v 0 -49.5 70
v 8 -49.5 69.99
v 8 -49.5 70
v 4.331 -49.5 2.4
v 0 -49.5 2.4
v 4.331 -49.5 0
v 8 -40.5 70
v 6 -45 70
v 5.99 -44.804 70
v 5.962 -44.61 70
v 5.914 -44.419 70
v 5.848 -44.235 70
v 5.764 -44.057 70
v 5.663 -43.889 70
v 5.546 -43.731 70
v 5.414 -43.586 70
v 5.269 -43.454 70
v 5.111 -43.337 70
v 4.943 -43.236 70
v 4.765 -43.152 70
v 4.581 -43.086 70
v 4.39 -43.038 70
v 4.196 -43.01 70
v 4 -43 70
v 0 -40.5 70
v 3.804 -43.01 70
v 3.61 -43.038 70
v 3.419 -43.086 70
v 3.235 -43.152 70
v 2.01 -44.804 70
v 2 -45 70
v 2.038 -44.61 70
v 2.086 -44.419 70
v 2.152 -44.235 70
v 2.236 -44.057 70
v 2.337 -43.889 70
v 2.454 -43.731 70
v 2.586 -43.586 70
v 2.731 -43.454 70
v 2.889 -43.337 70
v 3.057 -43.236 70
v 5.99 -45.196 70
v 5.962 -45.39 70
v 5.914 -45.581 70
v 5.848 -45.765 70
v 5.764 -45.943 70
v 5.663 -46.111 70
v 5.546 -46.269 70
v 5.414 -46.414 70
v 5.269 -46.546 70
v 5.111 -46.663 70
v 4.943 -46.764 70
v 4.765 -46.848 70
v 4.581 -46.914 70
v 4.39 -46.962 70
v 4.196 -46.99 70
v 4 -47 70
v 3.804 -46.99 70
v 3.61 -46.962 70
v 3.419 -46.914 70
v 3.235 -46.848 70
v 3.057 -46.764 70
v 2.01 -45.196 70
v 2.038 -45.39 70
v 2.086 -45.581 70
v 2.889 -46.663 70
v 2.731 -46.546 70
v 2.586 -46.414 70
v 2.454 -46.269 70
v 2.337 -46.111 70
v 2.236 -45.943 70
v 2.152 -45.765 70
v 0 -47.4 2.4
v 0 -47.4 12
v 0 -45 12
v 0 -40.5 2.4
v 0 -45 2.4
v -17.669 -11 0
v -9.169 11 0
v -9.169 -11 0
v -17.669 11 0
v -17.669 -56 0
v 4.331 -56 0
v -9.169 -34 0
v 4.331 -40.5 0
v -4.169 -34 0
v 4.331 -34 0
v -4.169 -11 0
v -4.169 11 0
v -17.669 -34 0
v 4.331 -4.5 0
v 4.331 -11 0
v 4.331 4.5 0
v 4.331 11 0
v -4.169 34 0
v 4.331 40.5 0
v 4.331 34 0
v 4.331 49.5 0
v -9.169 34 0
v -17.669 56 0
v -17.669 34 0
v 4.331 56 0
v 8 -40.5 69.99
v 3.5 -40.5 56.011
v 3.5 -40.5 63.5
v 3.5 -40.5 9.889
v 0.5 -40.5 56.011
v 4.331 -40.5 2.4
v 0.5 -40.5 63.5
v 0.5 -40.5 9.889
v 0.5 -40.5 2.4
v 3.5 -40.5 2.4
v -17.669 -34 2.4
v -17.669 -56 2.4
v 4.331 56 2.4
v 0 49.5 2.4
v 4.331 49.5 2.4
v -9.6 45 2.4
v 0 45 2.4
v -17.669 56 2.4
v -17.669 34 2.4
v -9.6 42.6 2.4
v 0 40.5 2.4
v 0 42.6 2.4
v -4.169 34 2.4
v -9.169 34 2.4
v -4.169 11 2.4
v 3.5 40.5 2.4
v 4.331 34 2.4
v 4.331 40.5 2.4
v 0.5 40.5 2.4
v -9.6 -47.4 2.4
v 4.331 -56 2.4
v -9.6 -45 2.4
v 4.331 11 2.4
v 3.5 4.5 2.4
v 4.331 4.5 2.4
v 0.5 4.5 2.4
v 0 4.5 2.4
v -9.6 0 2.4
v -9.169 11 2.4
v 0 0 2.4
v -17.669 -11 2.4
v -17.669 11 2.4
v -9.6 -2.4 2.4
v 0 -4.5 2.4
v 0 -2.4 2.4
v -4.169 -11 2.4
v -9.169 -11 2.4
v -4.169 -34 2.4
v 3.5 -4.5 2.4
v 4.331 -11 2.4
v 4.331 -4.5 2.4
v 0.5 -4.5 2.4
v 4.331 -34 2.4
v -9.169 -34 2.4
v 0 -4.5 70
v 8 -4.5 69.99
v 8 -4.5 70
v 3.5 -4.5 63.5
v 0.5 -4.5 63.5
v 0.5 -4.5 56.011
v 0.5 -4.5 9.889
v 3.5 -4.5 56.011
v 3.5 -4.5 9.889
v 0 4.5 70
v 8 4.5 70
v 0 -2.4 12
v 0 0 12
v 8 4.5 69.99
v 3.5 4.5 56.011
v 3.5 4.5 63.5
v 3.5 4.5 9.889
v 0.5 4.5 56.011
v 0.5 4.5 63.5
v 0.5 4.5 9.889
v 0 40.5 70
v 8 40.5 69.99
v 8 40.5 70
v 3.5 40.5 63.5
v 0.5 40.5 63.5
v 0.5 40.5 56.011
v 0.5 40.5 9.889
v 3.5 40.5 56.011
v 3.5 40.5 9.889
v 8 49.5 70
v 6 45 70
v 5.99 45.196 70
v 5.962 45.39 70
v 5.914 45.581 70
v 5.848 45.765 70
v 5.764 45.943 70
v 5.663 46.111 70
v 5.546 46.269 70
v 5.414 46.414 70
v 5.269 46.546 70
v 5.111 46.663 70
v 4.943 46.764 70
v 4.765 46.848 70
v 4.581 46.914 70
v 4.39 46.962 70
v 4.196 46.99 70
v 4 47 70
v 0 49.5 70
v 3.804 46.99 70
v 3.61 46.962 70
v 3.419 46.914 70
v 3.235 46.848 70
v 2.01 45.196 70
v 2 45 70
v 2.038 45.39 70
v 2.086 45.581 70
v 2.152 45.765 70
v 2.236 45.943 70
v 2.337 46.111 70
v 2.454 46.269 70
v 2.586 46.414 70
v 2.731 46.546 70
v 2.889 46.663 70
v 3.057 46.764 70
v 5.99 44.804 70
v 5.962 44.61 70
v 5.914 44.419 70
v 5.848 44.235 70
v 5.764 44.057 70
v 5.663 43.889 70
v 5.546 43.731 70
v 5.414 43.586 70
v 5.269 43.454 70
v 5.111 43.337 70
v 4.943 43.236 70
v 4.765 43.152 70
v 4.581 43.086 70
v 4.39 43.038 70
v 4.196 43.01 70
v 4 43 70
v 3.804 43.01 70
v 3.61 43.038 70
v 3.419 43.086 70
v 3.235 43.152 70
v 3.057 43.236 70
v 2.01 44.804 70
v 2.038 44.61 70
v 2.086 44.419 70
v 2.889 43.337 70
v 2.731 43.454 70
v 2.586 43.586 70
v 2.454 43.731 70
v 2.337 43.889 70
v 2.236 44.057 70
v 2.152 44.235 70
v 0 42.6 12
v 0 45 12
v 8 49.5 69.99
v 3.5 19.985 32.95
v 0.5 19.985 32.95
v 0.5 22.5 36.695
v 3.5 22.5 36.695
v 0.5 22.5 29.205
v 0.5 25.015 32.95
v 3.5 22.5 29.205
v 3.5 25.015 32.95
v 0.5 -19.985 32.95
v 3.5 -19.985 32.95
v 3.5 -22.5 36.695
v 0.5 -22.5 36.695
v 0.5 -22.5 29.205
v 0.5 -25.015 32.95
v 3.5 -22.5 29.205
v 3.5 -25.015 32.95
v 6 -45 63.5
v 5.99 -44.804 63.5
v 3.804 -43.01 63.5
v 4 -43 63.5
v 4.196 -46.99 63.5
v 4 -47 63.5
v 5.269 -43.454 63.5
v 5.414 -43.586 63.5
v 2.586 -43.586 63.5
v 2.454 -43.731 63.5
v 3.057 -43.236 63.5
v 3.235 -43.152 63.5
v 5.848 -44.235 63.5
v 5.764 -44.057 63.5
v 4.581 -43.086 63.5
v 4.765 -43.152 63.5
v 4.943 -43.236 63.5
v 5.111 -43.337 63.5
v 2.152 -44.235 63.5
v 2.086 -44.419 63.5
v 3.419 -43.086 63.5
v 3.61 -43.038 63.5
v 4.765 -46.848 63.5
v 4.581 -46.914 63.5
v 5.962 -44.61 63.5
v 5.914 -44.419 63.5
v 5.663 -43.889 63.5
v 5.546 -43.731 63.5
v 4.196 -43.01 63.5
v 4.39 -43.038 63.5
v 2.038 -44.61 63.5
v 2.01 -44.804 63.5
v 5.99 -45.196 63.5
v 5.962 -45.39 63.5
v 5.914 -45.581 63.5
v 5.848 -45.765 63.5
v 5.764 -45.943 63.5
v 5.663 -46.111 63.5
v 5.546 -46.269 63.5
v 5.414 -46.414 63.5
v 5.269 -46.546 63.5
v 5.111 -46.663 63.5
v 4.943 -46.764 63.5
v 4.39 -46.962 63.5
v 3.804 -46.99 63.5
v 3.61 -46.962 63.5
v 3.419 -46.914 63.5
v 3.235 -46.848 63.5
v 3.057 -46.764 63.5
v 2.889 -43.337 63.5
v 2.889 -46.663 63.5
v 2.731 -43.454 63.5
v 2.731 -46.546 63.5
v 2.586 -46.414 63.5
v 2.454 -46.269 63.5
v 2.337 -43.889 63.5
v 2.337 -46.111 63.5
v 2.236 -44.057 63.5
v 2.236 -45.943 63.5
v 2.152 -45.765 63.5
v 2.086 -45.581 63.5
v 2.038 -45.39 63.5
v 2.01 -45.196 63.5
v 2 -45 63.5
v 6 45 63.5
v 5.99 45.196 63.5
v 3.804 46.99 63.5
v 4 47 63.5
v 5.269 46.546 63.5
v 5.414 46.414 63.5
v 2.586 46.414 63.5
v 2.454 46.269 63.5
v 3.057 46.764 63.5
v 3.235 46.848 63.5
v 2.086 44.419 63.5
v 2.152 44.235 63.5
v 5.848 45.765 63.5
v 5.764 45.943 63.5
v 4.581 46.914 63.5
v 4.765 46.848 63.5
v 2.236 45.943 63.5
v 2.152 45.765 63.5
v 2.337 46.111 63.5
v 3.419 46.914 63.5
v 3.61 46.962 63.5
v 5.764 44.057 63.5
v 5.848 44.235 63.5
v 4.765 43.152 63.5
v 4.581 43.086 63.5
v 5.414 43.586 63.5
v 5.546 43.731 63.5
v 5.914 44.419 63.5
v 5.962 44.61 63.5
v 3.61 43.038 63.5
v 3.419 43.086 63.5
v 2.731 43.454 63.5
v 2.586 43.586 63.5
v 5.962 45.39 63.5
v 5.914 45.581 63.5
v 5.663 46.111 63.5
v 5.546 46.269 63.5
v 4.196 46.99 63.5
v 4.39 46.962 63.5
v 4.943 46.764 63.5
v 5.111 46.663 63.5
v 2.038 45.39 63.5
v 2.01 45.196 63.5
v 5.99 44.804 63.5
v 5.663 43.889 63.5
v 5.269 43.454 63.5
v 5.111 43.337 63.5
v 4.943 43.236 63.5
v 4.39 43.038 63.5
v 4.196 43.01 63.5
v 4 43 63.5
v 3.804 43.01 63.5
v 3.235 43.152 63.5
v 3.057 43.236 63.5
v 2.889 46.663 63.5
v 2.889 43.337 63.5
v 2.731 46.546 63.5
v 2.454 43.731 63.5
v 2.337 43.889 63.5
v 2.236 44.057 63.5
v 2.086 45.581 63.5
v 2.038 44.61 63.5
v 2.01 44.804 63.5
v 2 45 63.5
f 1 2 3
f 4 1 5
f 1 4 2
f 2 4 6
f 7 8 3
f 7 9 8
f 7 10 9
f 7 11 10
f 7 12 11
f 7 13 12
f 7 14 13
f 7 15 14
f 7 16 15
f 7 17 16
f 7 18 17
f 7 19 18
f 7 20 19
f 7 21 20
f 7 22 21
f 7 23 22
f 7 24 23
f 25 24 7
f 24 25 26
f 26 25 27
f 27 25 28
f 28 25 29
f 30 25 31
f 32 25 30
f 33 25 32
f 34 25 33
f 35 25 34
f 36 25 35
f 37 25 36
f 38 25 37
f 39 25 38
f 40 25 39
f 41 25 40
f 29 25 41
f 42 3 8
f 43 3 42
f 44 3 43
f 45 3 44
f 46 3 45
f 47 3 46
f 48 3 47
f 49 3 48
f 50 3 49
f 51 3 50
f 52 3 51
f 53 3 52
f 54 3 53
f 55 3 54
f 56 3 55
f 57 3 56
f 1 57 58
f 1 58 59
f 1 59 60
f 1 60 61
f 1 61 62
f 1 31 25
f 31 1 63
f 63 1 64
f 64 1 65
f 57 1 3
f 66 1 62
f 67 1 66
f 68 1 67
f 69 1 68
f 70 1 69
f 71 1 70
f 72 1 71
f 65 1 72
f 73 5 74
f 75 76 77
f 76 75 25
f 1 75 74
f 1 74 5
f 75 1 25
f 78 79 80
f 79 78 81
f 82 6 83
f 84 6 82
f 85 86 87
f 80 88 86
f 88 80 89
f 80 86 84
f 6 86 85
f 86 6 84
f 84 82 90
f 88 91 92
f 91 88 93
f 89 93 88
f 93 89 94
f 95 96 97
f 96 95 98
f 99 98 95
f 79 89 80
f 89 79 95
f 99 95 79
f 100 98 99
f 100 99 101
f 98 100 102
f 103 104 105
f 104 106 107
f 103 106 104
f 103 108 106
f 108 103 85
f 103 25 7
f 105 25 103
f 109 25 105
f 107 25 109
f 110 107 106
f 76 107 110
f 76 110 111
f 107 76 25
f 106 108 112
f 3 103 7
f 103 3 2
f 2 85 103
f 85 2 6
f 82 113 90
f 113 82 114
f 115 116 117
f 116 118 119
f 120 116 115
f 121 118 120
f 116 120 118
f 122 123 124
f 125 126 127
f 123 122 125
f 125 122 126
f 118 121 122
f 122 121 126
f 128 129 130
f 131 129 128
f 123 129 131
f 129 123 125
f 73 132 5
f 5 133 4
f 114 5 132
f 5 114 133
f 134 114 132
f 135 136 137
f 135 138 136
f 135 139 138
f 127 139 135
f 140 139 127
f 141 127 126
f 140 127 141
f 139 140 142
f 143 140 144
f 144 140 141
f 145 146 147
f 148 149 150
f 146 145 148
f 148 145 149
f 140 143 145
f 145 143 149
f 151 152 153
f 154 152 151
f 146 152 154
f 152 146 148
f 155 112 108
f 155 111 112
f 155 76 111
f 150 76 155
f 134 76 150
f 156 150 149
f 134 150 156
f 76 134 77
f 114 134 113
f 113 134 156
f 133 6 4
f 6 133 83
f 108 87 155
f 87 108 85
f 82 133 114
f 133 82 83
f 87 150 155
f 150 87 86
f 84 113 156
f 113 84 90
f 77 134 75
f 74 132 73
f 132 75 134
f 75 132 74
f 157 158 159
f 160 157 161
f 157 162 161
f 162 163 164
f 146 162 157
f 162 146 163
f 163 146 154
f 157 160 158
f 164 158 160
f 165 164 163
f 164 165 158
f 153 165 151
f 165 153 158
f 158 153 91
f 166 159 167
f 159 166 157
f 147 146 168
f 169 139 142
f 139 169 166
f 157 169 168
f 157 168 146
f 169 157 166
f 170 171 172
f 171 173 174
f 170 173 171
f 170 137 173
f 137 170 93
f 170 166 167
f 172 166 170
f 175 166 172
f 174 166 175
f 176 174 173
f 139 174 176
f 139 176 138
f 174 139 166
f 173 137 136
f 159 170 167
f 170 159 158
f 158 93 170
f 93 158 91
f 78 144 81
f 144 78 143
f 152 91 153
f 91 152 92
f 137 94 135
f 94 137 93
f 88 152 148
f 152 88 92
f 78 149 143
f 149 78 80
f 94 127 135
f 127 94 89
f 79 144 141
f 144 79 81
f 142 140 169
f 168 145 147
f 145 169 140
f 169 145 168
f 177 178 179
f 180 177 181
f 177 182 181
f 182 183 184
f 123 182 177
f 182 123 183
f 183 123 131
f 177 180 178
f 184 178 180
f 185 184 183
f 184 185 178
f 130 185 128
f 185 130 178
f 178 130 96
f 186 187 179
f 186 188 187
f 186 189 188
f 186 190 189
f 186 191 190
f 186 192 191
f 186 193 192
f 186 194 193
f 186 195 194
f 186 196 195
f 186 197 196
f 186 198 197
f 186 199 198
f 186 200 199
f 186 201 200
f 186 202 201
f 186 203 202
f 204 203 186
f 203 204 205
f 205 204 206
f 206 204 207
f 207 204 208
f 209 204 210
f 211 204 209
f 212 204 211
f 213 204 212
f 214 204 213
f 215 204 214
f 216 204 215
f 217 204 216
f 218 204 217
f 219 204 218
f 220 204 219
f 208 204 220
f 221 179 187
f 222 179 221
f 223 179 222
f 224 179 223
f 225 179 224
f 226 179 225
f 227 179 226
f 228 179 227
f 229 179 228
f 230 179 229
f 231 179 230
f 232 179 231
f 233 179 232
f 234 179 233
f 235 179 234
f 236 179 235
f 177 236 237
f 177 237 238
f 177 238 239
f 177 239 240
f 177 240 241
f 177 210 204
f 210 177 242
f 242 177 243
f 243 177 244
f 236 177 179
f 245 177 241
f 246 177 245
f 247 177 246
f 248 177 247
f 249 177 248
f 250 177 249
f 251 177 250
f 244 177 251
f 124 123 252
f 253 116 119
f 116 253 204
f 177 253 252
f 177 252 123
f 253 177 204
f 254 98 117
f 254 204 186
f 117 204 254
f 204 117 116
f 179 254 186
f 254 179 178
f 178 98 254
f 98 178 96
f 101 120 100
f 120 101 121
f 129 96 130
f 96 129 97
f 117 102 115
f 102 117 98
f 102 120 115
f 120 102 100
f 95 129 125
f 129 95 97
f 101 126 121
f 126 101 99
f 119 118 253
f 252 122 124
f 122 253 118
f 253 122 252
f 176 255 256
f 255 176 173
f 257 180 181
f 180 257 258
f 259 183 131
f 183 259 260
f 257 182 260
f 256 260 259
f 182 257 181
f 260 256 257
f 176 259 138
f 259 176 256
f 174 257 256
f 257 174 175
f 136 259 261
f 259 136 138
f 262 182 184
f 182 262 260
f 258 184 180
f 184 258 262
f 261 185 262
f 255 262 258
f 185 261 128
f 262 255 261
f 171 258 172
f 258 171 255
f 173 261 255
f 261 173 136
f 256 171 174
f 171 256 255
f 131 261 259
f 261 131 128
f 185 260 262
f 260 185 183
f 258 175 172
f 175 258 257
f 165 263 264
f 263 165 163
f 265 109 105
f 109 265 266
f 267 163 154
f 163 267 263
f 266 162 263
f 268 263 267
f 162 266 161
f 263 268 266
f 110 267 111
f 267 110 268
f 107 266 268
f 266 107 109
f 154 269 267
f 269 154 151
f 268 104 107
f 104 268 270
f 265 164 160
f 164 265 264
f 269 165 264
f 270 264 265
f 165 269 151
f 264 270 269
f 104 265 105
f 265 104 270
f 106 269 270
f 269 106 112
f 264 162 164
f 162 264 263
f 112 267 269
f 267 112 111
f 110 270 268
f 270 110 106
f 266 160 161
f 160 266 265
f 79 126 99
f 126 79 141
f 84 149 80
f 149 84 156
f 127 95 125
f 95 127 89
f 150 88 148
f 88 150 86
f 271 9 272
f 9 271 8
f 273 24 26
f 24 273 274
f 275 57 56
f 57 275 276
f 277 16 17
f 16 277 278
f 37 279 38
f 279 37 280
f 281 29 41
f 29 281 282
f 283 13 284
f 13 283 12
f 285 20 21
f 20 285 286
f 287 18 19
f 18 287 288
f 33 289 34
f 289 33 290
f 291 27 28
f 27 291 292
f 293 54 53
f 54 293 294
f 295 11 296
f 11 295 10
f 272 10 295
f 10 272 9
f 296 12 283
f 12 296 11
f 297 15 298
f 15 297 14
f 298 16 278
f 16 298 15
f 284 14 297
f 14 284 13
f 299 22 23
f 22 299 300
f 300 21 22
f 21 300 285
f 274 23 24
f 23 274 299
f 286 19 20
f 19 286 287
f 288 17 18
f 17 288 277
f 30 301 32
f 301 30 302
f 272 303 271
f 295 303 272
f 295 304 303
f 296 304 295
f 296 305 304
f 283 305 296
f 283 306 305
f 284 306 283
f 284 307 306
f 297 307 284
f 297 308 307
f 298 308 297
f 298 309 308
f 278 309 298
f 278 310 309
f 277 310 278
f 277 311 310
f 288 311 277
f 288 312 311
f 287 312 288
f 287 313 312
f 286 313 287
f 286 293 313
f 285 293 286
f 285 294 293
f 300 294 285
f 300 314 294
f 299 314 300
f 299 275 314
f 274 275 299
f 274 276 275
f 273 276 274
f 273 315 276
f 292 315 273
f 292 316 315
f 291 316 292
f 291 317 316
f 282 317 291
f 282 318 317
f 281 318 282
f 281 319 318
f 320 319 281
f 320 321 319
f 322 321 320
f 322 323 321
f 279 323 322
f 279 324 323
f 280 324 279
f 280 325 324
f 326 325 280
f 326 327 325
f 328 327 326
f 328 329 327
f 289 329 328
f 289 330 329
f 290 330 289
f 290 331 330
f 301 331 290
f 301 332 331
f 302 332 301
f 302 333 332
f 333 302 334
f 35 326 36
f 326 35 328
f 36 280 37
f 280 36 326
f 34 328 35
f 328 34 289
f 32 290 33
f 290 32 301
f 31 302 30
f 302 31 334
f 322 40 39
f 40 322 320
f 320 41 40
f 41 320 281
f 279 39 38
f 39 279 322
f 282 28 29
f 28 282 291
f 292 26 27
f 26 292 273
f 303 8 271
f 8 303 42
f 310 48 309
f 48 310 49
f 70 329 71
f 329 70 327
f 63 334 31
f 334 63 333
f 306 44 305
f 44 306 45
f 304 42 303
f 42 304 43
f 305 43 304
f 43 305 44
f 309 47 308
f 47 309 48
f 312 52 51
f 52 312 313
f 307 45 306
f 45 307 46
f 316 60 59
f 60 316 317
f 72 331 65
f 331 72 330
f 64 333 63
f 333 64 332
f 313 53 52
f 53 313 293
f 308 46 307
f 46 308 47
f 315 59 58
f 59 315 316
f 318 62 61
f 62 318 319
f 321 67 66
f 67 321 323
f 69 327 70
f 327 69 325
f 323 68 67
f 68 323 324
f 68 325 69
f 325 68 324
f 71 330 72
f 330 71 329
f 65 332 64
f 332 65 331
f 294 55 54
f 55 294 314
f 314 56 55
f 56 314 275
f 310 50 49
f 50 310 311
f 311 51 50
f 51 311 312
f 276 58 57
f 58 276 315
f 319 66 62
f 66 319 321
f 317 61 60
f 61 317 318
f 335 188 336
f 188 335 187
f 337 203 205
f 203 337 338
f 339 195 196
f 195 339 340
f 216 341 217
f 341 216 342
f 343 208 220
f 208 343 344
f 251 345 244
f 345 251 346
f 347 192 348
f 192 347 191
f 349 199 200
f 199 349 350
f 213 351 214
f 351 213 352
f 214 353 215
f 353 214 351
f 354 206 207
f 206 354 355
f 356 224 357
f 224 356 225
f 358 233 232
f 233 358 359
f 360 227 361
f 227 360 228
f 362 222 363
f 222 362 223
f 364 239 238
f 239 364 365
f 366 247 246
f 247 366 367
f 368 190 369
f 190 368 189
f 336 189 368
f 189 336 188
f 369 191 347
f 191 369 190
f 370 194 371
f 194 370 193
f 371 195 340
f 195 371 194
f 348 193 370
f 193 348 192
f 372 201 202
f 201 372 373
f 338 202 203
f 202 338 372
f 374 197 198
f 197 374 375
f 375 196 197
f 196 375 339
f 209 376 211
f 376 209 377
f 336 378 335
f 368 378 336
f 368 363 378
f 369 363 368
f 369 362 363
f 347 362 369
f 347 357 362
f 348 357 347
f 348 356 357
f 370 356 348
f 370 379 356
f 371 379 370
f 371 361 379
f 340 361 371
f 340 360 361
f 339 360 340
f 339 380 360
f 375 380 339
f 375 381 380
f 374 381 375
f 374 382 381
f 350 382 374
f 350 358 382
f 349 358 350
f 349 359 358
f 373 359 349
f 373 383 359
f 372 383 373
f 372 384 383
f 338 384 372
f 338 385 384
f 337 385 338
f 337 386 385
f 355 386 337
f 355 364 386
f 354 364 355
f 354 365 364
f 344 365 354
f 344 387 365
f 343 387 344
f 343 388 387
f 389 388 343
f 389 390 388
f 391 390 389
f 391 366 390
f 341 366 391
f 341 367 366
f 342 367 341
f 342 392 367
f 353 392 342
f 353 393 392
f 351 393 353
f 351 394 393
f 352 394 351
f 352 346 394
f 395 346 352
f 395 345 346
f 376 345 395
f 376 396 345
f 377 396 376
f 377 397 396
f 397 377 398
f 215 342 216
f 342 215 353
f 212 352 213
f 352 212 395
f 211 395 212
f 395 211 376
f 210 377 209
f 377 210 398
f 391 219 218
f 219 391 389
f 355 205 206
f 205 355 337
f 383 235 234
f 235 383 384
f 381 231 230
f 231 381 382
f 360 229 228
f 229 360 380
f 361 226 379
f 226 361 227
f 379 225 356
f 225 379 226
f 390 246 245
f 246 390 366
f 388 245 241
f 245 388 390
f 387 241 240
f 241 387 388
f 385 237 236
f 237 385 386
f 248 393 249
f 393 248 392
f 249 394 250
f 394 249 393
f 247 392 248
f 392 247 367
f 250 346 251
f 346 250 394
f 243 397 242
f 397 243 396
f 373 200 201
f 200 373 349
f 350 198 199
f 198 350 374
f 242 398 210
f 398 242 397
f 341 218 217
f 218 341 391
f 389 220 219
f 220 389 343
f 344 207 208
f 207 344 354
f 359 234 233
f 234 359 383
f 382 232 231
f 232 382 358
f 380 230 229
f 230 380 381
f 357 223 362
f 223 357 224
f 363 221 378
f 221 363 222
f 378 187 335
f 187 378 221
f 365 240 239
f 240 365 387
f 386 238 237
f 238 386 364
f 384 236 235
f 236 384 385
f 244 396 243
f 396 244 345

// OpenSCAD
// Apache 2800 Eurorack Plate
// Copyright (c) 2026 William Chrapcynski
// Licensed under CC BY-NC-SA 4.0
// https://creativecommons.org/licenses/by-nc-sa/4.0/

/* [Bracket] */
// Bracket Height
bracket_height = 70;
// Post Depth
post_depth = 8;
// Post Width
post_width = 9;
// Post Spacing - Must match screw_position_y in the plate
post_spacing = 45; 
// Wall Draft - Sets angle / bracket lean
wall_draft = 3;
// Wall Draft Offset
draft_offset = bracket_height * tan(wall_draft);

/* [Pads] */
// Pad 
// Pad Length (X)
pad_length = 22;
// Pad Width (Y)
pad_width = 22;
// Pad Thickness
pad_thickness = 2.4;
// Tie Strip Width
tie_strip_width = 5;

/* [Gussets] */
// Guesset Size
gusset_size = 12;
// Gusset Thickness
gusset_thickness = 2.4;

/* [Braces] */
// Brace Thickness
brace_thickness = 3;
// Brace Width
brace_width = 6;
// Brace Top Gap
brace_top_gap = 6.5;

/* [Inserts] */
// Insert Hole Diameter
insert_hole_diameter = 4;
// Insert Hole Depth
insert_hole_depth = 6.5;

/* [Misc] */
// Rounding segments
$fn = 64;

difference() {
    union() {
        // Create Posts, Feet, and Gussets
        for(y = [-post_spacing, 0, post_spacing])
            translate([0, y, 0]) {
                hull() {
                    translate([0, -post_width / 2, 0])
                        cube([post_depth - draft_offset, post_width, 0.01]);
                    translate([0, -post_width / 2, bracket_height - 0.01])
                        cube([post_depth, post_width, 0.01]);
                }
                translate([post_depth - draft_offset - pad_length, -pad_width /2, 0])
                    cube([pad_length, pad_width, pad_thickness]);
//                translate([0, gusset_thickness / 2, pad_thickness])
                    rotate([90, 0, 0]) 
                        linear_extrude(height = gusset_thickness) 
                            polygon([[0, 0], [-gusset_size, 0], [0, gusset_size]]);
            }
            // Create Tie Strip
            translate([post_depth - draft_offset - (pad_length / 2) - (tie_strip_width / 2), -post_spacing, 0])
                cube([tie_strip_width, 2 * post_spacing, pad_thickness]);

        // Create Cross Bracing
        for(m = [0,1])
            mirror([0, m, 0]) {
                hull() {
                    translate([0.5, (post_width / 2) - 1, pad_thickness])
                        cube([brace_thickness, 1, brace_width]);
                    translate([0.5, post_spacing - (post_width / 2), bracket_height - brace_top_gap - brace_width])
                        cube([brace_thickness, 1, brace_width]);
                }

                hull() {
                    translate([0.5, post_spacing - (post_width / 2), pad_thickness])
                        cube([brace_thickness, 1, brace_width]);
                    translate([0.5, (post_width / 2) - 1, bracket_height - brace_top_gap - brace_width])
                        cube([brace_thickness, 1, brace_width]);
                }
        }
    }
    // Create Insert Holes
    for(sy = [-1, 1])
        translate([post_depth / 2, sy * post_spacing, bracket_height - insert_hole_depth])
            cylinder(d = insert_hole_diameter, h = insert_hole_depth + 1);
}
